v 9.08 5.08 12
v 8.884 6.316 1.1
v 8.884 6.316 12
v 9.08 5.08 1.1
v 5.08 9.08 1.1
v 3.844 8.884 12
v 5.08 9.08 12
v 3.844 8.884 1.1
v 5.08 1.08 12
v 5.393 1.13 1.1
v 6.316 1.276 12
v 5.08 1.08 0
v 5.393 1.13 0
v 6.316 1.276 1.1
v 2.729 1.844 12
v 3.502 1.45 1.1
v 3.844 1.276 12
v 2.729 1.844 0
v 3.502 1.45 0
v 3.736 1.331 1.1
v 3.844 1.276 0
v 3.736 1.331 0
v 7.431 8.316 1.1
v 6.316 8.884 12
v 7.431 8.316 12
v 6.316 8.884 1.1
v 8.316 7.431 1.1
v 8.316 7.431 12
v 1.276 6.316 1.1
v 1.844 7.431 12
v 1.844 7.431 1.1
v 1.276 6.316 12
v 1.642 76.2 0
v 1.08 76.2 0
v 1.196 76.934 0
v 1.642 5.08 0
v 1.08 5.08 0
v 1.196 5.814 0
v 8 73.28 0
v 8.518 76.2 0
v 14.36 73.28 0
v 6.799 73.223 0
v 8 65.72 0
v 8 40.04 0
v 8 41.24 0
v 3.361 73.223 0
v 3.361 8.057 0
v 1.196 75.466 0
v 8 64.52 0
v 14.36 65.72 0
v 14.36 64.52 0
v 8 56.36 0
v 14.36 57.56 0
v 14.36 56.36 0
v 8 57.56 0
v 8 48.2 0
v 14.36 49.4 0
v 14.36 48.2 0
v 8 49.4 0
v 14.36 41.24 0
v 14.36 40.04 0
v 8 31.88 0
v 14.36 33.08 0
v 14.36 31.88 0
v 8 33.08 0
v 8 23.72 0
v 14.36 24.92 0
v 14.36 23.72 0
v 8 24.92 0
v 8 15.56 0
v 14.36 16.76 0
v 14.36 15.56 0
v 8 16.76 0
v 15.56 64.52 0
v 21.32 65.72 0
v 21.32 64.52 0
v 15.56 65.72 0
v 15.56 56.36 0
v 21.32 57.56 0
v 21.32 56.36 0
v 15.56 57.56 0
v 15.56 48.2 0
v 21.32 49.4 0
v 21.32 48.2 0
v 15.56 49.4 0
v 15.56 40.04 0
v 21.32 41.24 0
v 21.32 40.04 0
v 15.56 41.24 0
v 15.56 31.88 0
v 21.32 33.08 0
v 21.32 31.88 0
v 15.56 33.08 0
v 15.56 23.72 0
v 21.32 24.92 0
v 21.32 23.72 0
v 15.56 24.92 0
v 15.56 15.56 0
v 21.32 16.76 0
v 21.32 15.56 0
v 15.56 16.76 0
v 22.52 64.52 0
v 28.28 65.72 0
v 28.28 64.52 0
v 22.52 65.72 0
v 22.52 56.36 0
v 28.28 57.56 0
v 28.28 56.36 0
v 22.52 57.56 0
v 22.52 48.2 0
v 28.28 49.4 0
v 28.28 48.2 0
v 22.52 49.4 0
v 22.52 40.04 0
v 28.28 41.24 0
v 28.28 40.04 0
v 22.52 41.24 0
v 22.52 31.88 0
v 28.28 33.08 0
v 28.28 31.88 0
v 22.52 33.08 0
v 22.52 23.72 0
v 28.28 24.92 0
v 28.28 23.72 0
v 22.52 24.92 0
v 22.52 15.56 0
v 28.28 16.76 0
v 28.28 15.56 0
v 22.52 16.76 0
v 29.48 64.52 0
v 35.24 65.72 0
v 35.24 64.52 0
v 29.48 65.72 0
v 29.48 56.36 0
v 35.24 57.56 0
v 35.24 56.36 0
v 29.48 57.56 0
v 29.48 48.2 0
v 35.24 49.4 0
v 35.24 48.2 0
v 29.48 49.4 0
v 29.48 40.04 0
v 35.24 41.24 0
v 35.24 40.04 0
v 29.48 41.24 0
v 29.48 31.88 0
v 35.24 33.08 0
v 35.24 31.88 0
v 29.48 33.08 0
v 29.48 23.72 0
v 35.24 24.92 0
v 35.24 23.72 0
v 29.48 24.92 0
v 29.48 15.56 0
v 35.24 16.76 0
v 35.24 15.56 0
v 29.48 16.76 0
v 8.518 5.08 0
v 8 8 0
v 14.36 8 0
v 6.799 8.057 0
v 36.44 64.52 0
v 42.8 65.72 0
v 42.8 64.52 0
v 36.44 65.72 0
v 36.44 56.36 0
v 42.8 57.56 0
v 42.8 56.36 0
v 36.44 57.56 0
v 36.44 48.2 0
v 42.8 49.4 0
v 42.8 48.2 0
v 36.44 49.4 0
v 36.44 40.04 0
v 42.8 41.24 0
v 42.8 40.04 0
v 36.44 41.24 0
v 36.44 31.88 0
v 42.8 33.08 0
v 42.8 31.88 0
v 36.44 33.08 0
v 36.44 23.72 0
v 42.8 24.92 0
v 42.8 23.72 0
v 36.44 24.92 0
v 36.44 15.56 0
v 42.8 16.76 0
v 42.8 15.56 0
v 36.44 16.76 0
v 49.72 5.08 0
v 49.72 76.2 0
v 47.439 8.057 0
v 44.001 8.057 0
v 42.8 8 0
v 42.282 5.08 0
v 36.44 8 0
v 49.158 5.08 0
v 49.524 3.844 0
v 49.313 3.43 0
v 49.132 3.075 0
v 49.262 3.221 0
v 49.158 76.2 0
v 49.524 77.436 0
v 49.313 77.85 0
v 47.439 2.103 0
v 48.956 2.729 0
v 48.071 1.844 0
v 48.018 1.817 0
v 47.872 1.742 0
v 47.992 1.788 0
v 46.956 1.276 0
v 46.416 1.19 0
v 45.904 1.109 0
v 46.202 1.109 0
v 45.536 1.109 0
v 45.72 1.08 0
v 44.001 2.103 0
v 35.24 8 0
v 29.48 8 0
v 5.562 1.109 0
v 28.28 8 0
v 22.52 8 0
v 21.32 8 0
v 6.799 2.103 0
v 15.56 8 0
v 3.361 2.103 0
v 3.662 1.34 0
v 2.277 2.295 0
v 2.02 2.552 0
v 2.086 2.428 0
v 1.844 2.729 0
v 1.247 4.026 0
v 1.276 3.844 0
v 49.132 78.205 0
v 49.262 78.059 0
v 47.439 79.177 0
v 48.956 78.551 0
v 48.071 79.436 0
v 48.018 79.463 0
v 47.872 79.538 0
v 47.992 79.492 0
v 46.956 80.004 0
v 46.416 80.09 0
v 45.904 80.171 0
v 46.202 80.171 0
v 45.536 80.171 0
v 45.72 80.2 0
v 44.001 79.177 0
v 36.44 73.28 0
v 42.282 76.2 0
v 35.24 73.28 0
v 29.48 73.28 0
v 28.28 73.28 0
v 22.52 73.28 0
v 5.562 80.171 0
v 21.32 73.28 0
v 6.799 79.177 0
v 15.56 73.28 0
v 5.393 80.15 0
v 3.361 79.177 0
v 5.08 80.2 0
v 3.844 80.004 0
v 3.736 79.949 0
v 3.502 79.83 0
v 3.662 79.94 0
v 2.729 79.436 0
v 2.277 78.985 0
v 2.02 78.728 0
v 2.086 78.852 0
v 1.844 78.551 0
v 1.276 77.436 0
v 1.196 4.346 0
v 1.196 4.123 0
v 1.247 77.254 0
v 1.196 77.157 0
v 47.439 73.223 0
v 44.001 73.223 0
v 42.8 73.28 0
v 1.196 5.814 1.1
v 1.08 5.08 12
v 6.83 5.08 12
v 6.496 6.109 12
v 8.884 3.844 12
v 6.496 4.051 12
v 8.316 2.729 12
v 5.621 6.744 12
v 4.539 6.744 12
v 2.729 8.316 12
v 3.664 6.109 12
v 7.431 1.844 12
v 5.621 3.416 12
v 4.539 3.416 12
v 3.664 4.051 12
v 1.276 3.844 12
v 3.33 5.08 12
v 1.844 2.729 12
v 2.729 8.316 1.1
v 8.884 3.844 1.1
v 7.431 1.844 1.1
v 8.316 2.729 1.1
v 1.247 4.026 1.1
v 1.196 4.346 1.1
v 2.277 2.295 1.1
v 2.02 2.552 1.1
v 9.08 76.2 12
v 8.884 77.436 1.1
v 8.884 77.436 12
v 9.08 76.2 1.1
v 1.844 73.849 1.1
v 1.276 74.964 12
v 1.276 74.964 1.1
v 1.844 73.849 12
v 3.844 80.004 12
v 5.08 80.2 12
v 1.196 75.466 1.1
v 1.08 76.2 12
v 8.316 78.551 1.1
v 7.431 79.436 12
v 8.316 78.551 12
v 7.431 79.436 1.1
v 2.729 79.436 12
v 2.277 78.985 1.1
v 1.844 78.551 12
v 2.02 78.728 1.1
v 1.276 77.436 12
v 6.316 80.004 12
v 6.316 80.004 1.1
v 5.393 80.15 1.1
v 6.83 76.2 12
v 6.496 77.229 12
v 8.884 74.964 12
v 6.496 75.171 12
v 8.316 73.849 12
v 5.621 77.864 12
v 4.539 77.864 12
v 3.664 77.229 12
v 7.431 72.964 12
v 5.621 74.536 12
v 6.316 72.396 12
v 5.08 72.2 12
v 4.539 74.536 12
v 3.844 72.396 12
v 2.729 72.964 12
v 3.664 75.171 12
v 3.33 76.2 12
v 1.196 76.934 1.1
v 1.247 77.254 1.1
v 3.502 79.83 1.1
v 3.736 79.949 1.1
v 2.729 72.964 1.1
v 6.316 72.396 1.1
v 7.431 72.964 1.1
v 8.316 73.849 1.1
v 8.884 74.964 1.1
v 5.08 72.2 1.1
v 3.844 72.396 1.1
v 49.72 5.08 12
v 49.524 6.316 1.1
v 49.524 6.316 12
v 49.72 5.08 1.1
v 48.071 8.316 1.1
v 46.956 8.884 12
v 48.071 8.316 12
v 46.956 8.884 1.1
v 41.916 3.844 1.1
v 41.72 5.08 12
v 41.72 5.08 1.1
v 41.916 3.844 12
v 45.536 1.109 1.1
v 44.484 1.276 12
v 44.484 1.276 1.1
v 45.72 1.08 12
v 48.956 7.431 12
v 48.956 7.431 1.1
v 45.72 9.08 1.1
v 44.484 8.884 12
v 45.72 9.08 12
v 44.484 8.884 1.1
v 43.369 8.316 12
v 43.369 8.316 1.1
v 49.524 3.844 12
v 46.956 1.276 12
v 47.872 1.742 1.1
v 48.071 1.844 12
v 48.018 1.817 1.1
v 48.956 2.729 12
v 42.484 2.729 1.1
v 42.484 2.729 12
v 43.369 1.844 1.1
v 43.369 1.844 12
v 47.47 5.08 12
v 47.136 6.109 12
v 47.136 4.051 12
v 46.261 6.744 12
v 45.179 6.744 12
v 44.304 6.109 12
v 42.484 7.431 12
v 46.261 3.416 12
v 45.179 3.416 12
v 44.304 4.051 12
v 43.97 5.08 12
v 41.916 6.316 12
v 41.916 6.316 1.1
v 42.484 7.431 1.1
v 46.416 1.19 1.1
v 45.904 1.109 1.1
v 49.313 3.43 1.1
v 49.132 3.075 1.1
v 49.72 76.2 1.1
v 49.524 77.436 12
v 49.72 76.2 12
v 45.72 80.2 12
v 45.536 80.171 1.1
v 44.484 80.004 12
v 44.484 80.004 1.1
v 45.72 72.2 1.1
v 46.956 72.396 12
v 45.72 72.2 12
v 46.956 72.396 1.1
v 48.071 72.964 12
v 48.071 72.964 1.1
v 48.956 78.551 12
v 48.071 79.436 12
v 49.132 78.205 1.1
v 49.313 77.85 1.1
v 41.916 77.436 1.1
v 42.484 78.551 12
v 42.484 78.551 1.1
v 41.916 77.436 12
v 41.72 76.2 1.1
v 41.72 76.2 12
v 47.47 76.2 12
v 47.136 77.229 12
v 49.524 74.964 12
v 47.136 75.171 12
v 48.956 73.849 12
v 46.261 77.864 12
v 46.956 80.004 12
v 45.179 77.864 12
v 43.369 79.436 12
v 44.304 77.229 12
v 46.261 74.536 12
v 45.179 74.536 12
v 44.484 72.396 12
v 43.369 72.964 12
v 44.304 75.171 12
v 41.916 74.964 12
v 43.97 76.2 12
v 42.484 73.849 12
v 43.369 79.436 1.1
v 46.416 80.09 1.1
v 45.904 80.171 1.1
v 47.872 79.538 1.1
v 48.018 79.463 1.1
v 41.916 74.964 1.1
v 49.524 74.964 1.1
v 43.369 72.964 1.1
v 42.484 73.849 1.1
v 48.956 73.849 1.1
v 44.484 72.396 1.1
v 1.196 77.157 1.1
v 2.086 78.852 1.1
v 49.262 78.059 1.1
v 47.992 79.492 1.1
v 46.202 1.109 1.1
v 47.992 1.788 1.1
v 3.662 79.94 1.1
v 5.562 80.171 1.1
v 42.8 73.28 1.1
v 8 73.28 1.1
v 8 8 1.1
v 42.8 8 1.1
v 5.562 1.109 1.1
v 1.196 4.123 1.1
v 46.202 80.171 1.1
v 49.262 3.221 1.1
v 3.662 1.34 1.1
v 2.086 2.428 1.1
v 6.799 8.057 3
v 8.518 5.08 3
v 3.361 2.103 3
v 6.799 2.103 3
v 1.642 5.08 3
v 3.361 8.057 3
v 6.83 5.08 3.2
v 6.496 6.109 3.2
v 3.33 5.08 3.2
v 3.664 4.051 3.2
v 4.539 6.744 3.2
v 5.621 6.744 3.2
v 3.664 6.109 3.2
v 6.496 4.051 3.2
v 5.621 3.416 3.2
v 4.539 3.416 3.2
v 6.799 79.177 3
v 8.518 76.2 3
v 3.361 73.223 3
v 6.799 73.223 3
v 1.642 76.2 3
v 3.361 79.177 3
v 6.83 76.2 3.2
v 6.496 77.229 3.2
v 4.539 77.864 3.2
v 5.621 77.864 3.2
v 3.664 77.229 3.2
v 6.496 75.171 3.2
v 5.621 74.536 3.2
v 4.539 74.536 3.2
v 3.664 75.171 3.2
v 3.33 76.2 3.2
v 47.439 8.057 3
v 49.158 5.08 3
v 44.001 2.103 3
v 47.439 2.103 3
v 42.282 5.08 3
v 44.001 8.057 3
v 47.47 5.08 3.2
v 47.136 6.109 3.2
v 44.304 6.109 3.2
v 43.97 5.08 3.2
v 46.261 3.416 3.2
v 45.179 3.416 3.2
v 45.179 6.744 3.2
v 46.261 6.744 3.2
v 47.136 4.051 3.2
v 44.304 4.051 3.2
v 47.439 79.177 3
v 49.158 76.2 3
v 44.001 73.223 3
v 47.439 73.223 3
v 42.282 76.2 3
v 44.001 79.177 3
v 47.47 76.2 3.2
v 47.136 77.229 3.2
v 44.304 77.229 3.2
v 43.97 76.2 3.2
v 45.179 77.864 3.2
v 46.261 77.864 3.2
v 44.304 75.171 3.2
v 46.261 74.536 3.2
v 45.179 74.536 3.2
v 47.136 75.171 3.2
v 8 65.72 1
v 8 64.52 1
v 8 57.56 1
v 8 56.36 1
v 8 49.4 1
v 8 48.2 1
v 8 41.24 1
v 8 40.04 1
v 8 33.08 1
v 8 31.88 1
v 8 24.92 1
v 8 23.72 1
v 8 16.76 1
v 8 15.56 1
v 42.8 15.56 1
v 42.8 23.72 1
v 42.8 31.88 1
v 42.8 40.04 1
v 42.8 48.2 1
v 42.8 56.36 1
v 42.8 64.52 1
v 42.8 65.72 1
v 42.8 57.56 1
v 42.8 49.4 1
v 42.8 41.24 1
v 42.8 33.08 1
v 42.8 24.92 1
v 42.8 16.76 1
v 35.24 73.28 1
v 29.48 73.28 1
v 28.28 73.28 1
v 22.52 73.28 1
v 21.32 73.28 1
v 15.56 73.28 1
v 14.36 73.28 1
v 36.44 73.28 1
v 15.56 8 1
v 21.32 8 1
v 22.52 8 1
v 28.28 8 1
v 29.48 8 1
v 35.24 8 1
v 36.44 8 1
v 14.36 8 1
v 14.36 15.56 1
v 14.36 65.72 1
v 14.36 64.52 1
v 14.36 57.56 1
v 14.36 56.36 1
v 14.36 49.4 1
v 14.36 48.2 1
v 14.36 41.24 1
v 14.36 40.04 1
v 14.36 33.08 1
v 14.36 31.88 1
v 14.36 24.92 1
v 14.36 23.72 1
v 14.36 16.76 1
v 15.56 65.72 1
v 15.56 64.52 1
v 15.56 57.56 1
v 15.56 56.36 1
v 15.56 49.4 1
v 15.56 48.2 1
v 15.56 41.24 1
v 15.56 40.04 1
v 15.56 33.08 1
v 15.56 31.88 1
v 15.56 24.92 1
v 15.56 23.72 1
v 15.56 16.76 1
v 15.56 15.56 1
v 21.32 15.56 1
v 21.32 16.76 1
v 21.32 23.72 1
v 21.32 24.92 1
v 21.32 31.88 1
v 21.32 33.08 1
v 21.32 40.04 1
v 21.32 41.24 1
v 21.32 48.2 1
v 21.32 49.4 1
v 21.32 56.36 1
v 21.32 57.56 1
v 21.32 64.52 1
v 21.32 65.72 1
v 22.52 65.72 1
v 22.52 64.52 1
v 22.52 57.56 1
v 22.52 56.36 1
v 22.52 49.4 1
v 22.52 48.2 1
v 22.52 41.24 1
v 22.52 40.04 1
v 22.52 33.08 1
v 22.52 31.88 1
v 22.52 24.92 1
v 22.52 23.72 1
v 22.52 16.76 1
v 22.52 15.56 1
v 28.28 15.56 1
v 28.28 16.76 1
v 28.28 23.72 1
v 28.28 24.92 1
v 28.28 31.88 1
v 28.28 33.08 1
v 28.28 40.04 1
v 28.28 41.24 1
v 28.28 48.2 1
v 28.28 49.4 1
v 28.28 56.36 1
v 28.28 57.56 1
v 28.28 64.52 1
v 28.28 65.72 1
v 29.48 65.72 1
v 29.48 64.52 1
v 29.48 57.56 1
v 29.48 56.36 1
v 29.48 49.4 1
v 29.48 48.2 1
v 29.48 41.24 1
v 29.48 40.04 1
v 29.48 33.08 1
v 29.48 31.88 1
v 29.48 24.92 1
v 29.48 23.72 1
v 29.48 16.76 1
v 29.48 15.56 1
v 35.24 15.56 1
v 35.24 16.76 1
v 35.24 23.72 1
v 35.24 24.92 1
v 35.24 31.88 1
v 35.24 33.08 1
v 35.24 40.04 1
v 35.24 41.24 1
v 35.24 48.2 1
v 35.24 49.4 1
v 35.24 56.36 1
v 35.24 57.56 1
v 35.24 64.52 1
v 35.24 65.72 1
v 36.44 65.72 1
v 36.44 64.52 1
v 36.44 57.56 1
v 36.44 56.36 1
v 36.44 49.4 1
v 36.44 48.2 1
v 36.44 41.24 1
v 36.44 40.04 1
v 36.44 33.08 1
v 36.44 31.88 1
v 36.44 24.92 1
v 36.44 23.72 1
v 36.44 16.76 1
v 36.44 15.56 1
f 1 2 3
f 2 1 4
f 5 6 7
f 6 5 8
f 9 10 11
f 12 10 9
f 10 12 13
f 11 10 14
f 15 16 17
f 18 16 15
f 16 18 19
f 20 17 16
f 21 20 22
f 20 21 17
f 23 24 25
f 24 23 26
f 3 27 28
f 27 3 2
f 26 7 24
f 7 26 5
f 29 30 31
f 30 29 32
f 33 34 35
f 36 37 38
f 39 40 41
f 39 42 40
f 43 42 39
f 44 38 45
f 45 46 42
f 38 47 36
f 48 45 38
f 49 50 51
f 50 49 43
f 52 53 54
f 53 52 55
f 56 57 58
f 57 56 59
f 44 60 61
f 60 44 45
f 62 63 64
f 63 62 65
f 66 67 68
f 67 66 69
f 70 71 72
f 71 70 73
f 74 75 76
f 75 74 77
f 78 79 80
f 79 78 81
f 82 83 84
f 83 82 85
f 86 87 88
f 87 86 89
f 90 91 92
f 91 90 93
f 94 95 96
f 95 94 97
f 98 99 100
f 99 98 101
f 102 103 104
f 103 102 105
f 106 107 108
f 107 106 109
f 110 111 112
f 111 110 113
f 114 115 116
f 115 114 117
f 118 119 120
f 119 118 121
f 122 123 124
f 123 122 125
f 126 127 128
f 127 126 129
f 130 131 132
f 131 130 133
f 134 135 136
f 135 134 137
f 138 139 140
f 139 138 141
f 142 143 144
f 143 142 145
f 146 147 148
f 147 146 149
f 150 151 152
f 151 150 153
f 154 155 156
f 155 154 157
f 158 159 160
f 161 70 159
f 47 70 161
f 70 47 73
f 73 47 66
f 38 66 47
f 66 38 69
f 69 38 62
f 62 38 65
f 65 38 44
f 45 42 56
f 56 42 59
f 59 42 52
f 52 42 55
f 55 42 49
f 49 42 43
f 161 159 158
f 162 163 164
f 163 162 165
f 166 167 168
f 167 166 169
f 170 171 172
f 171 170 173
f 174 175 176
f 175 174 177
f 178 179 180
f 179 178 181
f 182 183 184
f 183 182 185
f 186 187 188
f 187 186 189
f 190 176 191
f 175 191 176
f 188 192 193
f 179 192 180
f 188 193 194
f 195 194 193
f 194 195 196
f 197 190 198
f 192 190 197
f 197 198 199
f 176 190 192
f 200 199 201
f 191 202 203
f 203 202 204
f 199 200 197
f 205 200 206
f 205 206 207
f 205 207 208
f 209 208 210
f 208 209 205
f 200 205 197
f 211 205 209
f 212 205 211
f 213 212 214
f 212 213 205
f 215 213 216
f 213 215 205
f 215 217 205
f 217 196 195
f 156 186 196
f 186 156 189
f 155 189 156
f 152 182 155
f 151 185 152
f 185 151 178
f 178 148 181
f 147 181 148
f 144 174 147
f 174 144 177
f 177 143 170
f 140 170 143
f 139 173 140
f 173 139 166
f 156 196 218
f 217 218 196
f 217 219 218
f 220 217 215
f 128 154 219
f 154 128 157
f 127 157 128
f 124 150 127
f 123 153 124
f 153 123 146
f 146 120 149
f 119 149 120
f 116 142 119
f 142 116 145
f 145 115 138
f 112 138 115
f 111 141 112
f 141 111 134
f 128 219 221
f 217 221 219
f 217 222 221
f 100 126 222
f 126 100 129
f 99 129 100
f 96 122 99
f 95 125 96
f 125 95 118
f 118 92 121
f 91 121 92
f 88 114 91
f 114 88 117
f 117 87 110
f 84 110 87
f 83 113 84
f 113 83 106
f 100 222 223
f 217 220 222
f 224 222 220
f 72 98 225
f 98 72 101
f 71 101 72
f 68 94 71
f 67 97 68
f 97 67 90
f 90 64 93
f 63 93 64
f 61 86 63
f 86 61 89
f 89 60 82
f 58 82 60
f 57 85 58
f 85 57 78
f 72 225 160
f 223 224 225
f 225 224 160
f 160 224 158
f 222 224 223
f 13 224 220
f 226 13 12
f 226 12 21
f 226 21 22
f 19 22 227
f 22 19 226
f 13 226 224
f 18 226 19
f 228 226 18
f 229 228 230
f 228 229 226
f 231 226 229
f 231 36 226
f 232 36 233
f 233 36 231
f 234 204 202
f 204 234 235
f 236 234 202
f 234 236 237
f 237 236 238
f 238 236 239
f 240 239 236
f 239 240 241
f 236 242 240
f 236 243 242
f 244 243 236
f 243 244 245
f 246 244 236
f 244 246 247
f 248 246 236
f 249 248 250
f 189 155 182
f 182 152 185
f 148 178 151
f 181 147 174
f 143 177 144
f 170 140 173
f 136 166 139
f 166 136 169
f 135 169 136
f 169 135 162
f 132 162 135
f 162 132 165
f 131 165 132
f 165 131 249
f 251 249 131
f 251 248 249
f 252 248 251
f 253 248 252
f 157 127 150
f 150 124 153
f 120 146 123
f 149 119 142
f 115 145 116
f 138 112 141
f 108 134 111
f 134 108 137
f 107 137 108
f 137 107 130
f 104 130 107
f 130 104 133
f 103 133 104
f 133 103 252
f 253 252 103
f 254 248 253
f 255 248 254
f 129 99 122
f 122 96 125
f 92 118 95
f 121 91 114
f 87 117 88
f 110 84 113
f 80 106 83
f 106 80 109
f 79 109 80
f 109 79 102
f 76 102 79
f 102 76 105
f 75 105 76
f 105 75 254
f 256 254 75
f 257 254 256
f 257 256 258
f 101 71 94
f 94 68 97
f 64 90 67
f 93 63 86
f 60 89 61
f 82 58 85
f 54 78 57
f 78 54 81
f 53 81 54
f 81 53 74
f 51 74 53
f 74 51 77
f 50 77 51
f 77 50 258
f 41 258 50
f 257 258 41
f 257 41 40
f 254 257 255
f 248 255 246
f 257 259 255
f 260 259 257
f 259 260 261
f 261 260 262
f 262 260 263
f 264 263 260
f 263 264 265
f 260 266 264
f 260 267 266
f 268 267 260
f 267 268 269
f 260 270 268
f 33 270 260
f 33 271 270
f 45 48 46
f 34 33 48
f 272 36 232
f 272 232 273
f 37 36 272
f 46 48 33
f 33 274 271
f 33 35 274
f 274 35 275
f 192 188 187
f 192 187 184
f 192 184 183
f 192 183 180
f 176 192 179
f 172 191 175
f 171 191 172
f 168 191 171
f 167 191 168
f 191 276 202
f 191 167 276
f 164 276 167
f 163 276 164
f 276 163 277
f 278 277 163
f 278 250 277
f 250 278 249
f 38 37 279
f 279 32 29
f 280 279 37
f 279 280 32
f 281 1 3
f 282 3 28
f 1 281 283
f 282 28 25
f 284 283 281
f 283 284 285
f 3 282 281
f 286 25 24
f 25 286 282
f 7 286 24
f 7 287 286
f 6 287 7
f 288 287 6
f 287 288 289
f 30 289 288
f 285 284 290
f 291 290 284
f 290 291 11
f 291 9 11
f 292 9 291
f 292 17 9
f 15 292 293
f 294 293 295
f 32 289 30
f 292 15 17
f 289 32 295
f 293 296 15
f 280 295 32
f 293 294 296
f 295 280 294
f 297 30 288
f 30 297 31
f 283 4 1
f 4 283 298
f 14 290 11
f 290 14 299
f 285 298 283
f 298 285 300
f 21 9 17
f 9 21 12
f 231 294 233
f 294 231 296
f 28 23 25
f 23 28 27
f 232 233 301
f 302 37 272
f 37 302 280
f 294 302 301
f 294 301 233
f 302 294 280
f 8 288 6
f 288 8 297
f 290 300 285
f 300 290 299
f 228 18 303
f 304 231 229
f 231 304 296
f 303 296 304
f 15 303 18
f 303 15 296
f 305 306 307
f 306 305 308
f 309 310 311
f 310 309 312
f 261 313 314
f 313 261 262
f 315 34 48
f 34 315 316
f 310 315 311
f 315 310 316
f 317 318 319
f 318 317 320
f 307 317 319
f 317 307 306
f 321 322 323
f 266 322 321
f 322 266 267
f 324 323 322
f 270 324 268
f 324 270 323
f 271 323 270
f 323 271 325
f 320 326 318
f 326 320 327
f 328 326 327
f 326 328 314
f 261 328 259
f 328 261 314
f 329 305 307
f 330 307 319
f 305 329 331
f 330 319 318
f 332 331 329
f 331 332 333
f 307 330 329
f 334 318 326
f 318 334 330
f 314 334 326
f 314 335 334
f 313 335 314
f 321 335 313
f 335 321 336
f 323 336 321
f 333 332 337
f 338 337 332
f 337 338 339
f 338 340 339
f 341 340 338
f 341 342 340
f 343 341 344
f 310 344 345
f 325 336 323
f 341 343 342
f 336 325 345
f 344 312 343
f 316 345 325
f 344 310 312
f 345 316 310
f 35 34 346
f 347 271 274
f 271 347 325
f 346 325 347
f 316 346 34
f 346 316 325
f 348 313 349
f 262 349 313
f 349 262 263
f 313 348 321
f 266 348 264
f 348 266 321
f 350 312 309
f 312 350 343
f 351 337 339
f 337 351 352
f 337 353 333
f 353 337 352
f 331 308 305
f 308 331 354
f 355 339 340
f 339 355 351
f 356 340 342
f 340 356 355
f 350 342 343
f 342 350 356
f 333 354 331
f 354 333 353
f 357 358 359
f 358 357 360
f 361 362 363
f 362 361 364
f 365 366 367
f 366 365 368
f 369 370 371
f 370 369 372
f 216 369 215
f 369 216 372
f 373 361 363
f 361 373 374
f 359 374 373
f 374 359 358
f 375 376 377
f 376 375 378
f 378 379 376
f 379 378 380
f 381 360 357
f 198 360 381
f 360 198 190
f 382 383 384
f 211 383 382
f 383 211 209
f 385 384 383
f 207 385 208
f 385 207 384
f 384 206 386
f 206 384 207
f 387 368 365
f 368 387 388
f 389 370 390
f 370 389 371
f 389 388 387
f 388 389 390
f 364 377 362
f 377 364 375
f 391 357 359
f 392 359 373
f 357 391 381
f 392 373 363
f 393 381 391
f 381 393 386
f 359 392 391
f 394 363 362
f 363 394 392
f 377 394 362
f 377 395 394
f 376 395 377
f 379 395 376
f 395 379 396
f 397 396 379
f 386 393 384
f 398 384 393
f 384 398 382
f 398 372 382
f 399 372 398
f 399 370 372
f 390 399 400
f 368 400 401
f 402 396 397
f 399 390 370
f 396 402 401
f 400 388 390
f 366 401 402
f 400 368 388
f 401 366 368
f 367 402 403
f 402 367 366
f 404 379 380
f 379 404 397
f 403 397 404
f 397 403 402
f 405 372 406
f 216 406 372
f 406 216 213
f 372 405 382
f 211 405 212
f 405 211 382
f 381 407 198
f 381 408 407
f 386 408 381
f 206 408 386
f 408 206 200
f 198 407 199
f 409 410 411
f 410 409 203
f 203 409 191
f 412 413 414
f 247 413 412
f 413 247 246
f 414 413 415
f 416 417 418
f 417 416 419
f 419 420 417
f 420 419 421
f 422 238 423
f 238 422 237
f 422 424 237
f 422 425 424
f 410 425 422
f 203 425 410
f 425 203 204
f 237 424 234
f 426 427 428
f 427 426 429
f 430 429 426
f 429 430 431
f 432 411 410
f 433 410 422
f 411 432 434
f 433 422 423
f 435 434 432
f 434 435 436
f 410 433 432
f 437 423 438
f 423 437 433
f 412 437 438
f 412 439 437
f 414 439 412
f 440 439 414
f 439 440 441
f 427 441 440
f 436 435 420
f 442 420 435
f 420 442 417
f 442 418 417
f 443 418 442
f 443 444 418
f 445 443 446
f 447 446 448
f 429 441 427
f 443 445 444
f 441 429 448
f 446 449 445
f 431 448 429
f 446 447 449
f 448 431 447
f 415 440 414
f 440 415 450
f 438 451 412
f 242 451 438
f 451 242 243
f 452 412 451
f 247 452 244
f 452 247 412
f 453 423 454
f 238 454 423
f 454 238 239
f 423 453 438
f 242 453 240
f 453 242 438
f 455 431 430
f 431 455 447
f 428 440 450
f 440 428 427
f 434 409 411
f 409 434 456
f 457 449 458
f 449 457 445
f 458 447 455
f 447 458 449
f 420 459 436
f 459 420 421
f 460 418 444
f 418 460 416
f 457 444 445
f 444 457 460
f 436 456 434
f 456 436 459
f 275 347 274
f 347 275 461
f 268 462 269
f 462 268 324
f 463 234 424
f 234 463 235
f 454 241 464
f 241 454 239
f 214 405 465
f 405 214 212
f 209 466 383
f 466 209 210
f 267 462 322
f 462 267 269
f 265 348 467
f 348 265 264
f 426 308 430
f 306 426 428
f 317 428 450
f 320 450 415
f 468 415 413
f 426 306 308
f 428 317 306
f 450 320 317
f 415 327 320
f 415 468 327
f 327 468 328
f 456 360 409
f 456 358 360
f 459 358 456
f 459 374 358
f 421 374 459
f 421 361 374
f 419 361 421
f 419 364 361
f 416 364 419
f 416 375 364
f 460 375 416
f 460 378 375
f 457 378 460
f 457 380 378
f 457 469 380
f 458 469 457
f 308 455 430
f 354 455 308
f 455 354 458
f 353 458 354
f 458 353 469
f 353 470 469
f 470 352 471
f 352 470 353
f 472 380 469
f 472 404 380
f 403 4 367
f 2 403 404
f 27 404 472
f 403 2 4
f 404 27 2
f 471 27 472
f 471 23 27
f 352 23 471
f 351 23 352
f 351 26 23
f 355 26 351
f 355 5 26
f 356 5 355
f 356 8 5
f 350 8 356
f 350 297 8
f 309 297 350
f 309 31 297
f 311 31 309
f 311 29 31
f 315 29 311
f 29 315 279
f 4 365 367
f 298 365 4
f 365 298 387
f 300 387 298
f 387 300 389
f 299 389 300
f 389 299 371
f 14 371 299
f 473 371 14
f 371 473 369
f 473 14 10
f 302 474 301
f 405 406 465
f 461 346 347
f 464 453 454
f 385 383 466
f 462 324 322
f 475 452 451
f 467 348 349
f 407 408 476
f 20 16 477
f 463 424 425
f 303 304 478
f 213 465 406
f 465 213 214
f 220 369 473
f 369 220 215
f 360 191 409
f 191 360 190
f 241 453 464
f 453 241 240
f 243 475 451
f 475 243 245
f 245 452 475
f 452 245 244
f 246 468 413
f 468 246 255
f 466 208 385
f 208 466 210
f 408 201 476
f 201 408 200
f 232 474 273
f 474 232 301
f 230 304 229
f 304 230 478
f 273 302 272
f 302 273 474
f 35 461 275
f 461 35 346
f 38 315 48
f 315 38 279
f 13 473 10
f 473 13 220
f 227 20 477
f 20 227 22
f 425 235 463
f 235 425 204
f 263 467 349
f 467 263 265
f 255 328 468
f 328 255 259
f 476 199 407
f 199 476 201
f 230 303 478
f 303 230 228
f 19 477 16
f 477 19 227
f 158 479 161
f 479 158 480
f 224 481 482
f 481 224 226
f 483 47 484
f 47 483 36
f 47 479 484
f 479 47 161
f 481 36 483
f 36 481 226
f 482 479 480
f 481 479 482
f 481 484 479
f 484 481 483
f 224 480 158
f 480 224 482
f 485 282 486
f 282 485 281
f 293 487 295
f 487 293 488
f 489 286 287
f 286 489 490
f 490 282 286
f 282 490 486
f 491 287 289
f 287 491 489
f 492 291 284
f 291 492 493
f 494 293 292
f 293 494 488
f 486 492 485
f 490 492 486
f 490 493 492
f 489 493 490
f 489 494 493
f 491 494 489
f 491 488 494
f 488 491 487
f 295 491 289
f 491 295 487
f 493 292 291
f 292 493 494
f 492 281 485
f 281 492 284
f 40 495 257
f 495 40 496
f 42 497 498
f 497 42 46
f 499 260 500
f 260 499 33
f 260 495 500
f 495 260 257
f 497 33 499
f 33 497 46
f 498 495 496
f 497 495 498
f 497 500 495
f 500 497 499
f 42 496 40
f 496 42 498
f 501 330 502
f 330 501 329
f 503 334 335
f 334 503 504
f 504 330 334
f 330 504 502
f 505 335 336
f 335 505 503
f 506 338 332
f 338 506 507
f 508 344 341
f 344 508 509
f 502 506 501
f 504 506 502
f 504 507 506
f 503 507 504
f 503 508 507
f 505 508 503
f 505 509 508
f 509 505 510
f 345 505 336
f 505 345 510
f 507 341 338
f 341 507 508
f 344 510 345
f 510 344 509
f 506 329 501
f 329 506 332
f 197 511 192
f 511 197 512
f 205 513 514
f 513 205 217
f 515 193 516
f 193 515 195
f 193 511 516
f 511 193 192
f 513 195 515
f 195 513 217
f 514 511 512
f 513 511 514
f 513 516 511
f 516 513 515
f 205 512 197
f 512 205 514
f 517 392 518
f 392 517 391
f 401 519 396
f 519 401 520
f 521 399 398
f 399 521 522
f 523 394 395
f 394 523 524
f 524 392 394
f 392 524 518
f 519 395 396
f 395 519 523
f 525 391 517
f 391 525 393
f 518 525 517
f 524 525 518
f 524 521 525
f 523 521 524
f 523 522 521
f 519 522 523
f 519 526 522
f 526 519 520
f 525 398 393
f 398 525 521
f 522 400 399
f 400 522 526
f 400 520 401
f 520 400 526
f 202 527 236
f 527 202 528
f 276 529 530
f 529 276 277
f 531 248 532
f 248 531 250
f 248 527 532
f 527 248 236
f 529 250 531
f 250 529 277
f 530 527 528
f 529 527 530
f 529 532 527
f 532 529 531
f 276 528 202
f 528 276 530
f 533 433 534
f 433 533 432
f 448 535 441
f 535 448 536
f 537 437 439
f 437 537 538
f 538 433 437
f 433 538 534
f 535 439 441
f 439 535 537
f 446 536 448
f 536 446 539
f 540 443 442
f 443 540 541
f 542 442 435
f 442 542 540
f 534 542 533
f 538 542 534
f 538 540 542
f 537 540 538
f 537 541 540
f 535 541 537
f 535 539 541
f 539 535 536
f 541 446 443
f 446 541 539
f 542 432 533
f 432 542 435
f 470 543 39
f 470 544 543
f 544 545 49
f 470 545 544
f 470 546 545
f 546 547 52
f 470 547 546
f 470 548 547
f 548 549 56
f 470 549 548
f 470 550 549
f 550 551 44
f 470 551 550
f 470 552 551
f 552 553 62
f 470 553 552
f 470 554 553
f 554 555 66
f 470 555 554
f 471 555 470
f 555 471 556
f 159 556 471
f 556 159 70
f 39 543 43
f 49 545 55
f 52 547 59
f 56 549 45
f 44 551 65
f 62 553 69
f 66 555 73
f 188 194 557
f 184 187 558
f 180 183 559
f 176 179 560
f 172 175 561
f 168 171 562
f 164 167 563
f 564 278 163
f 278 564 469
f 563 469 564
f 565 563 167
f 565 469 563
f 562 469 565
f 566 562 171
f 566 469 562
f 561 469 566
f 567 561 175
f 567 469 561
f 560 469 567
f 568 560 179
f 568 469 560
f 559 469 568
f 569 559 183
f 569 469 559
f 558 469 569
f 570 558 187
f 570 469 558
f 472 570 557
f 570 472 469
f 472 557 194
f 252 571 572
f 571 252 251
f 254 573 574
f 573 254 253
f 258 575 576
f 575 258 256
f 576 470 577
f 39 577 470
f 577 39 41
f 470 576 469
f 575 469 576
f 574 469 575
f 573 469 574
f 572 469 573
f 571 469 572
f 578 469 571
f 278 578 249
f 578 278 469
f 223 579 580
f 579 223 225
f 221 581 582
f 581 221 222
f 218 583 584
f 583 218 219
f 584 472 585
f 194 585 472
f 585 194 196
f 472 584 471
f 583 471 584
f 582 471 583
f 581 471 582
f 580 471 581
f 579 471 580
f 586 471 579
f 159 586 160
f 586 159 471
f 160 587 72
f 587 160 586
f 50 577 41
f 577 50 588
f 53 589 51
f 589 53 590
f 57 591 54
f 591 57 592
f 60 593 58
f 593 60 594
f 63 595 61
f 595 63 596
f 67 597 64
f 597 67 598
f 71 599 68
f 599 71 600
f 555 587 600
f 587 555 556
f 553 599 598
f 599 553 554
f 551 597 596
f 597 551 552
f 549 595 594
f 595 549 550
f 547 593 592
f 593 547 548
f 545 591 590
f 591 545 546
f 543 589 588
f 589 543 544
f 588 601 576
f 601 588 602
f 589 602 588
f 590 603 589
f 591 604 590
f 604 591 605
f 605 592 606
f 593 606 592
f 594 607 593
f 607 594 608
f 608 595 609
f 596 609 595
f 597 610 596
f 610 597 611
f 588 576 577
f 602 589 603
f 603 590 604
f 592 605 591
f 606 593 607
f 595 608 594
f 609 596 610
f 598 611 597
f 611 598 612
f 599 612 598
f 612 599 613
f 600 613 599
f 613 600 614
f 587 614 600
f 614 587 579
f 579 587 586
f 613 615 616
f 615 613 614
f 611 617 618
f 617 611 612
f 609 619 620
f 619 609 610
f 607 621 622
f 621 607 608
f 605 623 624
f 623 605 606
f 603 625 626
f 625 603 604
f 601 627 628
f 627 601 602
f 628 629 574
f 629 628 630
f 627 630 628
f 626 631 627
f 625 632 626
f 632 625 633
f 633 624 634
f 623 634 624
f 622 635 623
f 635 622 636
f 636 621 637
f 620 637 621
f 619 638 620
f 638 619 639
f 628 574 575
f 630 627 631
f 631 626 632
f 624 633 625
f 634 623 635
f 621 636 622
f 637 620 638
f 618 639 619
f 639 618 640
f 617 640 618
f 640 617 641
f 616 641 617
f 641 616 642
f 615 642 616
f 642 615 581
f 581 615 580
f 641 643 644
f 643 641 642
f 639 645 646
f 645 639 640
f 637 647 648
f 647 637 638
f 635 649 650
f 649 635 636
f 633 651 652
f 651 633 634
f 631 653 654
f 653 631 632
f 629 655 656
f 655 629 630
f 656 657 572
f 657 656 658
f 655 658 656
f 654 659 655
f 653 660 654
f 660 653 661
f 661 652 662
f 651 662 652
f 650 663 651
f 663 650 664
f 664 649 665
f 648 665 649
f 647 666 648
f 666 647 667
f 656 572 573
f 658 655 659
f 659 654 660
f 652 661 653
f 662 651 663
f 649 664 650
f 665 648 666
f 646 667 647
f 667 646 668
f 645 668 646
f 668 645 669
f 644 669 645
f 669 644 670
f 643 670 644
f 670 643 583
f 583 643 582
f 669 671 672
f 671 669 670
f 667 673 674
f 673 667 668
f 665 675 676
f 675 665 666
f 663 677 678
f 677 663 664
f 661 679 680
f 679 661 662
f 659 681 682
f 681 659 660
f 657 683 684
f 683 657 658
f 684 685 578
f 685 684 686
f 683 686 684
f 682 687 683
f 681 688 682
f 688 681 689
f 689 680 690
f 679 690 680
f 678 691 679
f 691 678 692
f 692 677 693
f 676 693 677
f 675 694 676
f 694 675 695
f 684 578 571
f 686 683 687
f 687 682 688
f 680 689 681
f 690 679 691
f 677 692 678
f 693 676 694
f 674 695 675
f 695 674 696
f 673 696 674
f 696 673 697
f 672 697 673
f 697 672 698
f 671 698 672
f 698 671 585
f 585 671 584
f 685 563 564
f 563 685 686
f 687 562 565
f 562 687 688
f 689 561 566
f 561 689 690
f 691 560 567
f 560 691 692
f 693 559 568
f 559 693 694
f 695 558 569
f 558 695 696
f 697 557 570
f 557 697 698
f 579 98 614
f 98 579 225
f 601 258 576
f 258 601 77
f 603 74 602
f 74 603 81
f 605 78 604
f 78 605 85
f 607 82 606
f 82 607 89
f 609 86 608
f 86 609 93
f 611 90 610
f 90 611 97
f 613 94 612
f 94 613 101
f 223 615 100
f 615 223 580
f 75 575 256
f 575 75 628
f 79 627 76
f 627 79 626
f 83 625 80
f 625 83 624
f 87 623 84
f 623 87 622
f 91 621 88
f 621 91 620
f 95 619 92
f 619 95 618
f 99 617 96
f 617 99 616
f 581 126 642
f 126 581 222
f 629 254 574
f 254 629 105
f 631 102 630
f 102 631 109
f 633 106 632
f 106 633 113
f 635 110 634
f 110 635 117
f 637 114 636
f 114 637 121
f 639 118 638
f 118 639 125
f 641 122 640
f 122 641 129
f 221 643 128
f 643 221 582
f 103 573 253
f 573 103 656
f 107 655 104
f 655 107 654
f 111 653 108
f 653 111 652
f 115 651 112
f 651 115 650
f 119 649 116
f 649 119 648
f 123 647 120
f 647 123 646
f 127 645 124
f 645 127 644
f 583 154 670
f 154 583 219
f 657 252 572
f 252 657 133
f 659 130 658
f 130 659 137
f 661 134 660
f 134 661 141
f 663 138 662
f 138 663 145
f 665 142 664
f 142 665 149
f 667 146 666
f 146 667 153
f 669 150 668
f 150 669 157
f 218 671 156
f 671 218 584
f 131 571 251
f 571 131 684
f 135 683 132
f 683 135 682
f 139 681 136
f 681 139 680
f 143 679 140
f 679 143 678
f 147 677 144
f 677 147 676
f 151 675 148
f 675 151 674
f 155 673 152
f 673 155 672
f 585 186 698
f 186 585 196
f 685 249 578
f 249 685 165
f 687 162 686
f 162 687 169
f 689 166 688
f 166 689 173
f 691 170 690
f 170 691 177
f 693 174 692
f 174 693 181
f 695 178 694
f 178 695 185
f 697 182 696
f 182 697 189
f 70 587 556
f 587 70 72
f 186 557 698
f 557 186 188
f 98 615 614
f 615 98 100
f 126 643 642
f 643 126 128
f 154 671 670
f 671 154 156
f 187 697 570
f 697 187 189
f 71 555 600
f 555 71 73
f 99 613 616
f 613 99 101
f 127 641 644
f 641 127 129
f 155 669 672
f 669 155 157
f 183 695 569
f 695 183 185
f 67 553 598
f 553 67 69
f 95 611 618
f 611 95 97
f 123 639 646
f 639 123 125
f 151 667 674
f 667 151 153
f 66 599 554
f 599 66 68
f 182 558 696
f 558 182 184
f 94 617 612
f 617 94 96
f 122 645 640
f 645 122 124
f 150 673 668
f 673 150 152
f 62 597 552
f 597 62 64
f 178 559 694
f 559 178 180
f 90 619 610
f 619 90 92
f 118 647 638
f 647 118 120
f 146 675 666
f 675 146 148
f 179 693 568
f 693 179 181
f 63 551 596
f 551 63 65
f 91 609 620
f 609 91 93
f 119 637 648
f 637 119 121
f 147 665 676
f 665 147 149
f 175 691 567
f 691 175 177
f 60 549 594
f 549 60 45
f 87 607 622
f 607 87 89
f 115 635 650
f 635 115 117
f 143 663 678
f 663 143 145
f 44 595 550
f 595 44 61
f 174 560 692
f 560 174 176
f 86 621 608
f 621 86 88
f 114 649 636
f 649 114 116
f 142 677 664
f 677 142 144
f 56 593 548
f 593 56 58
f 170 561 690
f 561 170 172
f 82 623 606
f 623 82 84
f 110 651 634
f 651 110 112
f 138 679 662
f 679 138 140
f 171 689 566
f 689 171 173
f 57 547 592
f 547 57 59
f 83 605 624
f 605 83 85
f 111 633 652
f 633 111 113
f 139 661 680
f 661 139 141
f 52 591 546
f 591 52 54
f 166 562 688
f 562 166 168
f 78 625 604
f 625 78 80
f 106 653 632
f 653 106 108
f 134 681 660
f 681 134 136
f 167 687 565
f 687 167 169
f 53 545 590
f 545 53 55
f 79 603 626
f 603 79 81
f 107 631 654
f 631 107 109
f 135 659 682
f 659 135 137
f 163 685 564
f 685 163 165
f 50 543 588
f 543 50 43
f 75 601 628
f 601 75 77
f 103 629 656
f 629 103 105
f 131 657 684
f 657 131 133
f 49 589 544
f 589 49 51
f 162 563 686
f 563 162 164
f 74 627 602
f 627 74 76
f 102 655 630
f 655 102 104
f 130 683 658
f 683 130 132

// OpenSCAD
x_holes = 5;
y_holes = 8;
pedestal_height = 12;   // designed for use the MLAB standard 20mm screws.

MLAB_grid = 10.16;
thickness = 1;          // thickness of bottom belt
pile_radius = 4;        // radius of pile around screw
x_size = x_holes * MLAB_grid ;
y_size = y_holes * MLAB_grid ;
mount_hole = 3.5;
//nut_size = 6.8;  //size suitable for PLA material
nut_size = 6.7;  //size suitable for ABS material
clear = 0.175;

//------------ Safety grid parameters---------------------------

nY = 8;
nX = 5;


meshX=x_size-4*pile_radius;
meshY=y_size-4*pile_radius;

// width of solid part of grid
meshSolid=1.2;

meshSpaceX = (meshX - meshSolid*nX)/nX;
meshSpaceY = (meshY - meshSolid*nY)/nY;



MLAB_grid_xoffset = MLAB_grid/2;
MLAB_grid_yoffset = MLAB_grid/2;

grid_list = [for (j = [MLAB_grid_xoffset : MLAB_grid: x_size], i = [MLAB_grid_yoffset :MLAB_grid: y_size]) 
if ((j>(x_size-10) && i>(y_size-10)) || (j<10 && i<10) || (j<10 && i>(y_size-10)) || (j>(x_size-10) && i<10) ) [j, i] ];


difference () {
    union () {
        for (j = grid_list) {
            translate (concat(j, [0]))
            cylinder (h = pedestal_height, r= pile_radius, $fn=20);
        }

            translate ([MLAB_grid_xoffset , MLAB_grid_yoffset , 0])
                minkowski() {
                cube([x_size - 2*(MLAB_grid/2 - pile_radius) - 2*pile_radius, y_size - 2*(MLAB_grid/2 - pile_radius) - 2*pile_radius, thickness]);          // base plastics brick
                cylinder(r=pile_radius,h=0.1);
            }
    }
    
    translate ([2*pile_radius, 2*pile_radius, 0]) // central hole in module support
        cube([x_size-4*pile_radius, y_size-4*pile_radius, 2*thickness]);          

    // MLAB grid holes
    for (j = grid_list) {
            translate (concat(j, [0]))
            cylinder (h = 3, r= (nut_size+clear)/2, $fn=6);
            translate (concat(j, [3.2]))  // one solid layer for slicer (the holes will be pierced on demand )
            cylinder (h = pedestal_height, r= mount_hole/2, $fn=10);
    }    
}

translate ([2*pile_radius, 2*pile_radius, 0]) // central hole in module support
    union()
    {
        for (i=[1:nX-1]) {
                 translate([i*(meshSolid+meshSpaceX) - meshSolid/2,0,0]) cube(size=[meshSolid, meshY, thickness],center=false);
        }

        for (i=[1:nY-1]) {
                translate([0,i*(meshSolid+meshSpaceY) - meshSolid/2,0]) cube(size=[meshX, meshSolid, thickness],center=false);

        }
    }
